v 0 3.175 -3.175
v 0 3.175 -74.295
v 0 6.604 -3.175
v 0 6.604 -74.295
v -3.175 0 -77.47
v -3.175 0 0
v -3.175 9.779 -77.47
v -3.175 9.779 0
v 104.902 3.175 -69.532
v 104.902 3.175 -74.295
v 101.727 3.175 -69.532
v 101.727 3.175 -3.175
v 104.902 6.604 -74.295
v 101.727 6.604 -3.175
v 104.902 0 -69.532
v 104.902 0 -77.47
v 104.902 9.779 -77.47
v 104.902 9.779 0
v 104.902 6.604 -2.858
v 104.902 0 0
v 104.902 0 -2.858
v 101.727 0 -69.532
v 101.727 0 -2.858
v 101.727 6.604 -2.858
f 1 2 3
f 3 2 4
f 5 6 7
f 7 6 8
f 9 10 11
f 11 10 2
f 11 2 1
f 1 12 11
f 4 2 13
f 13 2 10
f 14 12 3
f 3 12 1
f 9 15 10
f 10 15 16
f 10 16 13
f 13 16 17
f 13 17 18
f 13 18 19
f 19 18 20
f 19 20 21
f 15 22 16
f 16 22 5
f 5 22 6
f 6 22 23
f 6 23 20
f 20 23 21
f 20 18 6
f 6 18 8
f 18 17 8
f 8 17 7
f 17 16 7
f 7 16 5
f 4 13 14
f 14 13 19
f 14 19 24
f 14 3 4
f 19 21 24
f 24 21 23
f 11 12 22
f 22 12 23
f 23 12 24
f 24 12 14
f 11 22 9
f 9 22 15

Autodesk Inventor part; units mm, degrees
ref_plane "YZ Plane" through (0, 0, 0) normal (1, 0, 0) x (0, 1, 0)
ref_plane "XZ Plane" through (0, 0, 0) normal (0, 1, 0) x (-1, 0, 0)
ref_plane "XY Plane" through (0, 0, 0) normal (0, 0, 1) x (1, 0, 0)
sketch "Sketch1" plane through (0, 0, 0) normal (1, 0, 0) x (0, 1, 0)
  line L0 (0, 0) -> (9.779, 0)
  line L1 (9.779, 0) -> (9.779, -77.47)
  line L2 (9.779, -77.47) -> (0, -77.47)
  line L3 (0, -77.47) -> (0, 0)
  line L4 (3.175, -3.175) -> (6.604, -3.175)
  line L5 (6.604, -3.175) -> (6.604, -74.295)
  line L6 (6.604, -74.295) -> (3.175, -74.295)
  line L7 (3.175, -74.295) -> (3.175, -3.175)
  dimension "d0" = 3.175
  dimension "d1" = 3.175
  dimension "d2" = 3.175
  dimension "d3" = 3.175
  dimension "d4" = 3.429
  dimension "d5" = 71.12
extrude "Extrusion1" add sketch "Sketch1" along normal blind 104.902
sketch "Sketch2" plane through (0, 0, 0) normal (-1, 0, 0) x (0, 0, 1)
  line L0 (-77.47, 0) -> (-77.47, 9.779) projected
  line L1 (0, 9.779) -> (0, 0) projected
  line L2 (-77.47, 9.779) -> (0, 9.779)
  line L3 (0, 9.779) -> (0, 0)
  line L4 (0, 0) -> (-77.47, 0)
  line L5 (-77.47, 0) -> (-77.47, 9.779)
extrude "Extrusion2" add sketch "Sketch2" along normal blind 3.175
sketch "Sketch3" plane through (104.902, 0, 0) normal (1, 0, 0) x (0, 0, -1)
  line L0 (0, 0) -> (77.47, 0) projected
  line L1 (69.5325, 6.604) -> (2.8575, 6.604)
  line L2 (2.8575, 6.604) -> (2.8575, 0)
  line L3 (2.8575, 0) -> (69.5325, 0)
  line L4 (69.5325, 0) -> (69.5325, 6.604)
  line L5 (77.47, 0) -> (77.47, 9.779) projected
  dimension "d10" = 7.9375
  dimension "d11" = 66.675
extrude "Extrusion3" cut sketch "Sketch3" against normal blind 3.175
properties part number "HardDriveCase"
